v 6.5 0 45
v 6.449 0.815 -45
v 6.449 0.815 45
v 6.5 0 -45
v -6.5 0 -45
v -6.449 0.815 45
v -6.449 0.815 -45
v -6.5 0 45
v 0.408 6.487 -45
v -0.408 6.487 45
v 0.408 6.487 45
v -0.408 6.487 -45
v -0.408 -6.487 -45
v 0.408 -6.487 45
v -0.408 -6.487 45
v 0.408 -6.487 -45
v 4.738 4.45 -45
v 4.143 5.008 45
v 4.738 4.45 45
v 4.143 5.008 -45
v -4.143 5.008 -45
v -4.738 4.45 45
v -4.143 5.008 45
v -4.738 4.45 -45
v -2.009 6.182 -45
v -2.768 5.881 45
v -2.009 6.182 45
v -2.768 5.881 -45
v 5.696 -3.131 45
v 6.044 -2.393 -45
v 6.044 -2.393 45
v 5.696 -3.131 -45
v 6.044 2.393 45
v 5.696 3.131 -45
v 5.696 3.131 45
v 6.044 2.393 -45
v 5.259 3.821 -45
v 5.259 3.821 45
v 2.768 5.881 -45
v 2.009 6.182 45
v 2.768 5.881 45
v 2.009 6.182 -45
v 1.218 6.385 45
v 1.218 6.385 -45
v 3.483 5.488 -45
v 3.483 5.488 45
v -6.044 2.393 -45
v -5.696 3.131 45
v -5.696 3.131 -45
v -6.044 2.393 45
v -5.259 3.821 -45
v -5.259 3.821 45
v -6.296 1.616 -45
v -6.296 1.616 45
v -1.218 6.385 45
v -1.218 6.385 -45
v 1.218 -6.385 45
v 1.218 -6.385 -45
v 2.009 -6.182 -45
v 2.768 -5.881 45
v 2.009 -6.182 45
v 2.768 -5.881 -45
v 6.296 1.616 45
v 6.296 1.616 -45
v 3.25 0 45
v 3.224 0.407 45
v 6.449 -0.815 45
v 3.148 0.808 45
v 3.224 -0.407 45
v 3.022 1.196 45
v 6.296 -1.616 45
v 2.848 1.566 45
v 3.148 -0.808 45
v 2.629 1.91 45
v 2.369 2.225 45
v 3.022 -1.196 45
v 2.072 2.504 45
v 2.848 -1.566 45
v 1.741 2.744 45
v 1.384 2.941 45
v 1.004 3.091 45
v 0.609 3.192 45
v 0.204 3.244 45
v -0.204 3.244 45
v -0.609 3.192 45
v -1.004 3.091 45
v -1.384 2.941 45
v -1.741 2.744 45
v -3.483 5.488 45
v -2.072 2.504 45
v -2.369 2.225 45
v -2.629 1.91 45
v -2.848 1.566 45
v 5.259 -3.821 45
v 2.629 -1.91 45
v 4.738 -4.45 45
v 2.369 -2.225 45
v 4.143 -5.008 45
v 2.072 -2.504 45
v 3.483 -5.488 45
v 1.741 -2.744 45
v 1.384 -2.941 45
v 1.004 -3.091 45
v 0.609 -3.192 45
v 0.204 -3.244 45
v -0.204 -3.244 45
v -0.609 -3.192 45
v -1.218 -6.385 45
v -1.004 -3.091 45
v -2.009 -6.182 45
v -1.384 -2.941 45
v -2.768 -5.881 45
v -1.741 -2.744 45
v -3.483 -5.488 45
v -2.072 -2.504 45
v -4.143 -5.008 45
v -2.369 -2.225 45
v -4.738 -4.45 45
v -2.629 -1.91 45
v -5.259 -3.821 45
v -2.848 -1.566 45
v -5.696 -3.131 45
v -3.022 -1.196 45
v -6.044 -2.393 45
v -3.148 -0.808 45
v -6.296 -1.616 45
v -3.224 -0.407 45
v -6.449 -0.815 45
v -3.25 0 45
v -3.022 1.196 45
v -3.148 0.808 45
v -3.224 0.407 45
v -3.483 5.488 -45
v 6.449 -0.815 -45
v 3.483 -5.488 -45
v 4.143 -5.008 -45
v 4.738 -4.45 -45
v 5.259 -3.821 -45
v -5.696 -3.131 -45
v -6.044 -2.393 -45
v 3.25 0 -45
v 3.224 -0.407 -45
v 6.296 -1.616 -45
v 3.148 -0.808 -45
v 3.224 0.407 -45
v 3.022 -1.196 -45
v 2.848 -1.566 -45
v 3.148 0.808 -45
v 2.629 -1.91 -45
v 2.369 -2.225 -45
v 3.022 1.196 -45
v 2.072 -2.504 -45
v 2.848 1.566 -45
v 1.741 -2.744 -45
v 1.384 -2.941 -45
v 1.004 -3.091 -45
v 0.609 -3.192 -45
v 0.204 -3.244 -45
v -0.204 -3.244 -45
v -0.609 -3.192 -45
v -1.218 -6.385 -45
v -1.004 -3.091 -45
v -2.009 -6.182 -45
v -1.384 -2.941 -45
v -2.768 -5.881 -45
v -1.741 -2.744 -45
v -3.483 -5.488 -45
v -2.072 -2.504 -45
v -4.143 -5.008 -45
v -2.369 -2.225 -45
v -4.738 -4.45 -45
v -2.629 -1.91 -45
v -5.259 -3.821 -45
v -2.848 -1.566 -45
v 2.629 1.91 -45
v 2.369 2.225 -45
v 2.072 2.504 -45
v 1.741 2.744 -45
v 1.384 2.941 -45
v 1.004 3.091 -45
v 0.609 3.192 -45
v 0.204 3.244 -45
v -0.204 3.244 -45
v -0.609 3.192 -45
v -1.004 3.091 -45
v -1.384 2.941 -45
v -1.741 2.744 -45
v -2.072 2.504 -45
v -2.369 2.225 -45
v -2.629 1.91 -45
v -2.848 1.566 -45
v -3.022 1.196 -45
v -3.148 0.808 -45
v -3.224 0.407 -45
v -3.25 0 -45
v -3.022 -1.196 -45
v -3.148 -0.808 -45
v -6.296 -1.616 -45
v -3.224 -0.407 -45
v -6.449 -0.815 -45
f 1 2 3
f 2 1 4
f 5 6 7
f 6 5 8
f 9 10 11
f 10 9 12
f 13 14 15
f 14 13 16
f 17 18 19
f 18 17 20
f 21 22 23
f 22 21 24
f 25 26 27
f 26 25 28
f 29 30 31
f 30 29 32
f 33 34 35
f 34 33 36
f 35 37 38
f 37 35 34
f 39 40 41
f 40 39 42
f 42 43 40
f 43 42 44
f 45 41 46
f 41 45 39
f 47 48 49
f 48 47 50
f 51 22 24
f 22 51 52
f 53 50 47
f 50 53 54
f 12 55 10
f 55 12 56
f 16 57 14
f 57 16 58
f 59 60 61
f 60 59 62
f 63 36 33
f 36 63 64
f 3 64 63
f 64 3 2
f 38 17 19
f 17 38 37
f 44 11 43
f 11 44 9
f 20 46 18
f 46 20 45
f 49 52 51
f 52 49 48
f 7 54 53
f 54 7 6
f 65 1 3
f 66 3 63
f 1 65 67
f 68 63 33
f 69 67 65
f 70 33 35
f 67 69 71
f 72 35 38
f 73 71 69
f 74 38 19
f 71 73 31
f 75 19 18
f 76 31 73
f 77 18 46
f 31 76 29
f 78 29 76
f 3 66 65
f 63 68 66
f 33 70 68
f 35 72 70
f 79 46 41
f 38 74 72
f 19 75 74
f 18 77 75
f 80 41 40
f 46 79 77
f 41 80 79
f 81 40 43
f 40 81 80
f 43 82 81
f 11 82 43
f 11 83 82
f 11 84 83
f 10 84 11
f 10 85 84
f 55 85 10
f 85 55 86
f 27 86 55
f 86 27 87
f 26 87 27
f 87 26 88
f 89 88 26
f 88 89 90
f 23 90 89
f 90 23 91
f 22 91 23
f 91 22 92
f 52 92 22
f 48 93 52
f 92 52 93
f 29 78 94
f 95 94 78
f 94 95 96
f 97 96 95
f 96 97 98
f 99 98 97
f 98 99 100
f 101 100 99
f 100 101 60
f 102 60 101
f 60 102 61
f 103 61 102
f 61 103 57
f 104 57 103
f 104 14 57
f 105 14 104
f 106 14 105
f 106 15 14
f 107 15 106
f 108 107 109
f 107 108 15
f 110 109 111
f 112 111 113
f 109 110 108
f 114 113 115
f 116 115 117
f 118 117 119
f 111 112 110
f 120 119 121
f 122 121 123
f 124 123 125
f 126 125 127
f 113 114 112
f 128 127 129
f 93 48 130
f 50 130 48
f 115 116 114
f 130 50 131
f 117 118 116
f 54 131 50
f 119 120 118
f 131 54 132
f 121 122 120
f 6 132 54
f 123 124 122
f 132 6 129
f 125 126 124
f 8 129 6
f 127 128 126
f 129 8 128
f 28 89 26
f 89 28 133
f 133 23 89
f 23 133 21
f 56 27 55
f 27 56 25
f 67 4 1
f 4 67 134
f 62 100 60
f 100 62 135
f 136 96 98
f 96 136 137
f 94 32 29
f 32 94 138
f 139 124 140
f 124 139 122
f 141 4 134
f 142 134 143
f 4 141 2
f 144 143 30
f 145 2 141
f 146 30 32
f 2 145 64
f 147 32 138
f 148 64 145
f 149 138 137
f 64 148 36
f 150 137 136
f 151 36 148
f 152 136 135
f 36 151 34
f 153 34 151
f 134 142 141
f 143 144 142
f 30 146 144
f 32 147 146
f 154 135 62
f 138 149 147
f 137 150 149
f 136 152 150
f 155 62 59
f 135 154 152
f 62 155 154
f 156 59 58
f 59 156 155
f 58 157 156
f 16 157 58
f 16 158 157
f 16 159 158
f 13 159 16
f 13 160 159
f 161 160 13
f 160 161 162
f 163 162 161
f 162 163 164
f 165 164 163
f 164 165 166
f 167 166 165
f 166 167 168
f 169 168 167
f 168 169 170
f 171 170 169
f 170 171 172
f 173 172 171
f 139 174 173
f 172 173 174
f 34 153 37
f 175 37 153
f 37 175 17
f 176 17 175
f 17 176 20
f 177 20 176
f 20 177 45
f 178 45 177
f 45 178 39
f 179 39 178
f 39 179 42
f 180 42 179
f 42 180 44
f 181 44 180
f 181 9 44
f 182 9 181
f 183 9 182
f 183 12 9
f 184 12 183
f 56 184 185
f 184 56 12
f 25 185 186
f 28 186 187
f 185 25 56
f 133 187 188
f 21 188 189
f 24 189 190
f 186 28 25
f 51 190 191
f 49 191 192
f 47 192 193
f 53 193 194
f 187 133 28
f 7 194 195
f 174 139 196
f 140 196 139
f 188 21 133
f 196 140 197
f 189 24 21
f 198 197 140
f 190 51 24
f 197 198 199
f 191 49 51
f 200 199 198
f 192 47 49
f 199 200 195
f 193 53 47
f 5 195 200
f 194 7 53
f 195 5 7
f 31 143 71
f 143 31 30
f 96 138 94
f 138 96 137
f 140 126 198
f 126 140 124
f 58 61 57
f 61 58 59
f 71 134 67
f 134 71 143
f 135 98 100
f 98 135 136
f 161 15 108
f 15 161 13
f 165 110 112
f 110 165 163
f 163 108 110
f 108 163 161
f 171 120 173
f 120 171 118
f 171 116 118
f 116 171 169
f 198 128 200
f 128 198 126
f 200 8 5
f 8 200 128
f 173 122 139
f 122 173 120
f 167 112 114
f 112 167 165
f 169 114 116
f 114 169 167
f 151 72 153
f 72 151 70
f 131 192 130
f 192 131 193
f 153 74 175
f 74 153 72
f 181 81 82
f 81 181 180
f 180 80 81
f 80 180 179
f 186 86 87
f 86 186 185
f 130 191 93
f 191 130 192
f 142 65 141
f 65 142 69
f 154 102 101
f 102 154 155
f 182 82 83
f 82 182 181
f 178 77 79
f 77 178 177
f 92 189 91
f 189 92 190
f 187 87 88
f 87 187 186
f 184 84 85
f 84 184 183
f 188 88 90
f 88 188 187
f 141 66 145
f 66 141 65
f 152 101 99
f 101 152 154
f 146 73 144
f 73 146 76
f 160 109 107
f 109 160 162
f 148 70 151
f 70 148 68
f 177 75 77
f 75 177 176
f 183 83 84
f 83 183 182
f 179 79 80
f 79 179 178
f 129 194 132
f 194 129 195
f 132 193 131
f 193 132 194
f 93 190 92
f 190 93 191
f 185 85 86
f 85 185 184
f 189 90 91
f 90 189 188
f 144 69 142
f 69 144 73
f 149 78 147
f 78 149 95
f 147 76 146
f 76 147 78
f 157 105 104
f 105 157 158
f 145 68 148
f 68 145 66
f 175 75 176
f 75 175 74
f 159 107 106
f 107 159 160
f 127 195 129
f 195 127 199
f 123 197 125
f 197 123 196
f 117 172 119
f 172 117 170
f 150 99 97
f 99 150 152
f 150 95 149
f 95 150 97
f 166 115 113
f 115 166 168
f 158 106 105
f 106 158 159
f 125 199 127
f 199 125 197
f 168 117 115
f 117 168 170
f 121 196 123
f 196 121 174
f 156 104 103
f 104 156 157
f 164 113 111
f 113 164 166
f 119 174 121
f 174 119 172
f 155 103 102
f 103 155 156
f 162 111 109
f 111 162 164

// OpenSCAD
$fn = 50;


difference() {
	union() {
		translate(v = [0, 0, -45.0000000000]) {
			cylinder(h = 90, r = 6.5000000000);
		}
	}
	union() {
		translate(v = [0, 0, -100.0000000000]) {
			cylinder(h = 200, r = 3.2500000000);
		}
	}
}
